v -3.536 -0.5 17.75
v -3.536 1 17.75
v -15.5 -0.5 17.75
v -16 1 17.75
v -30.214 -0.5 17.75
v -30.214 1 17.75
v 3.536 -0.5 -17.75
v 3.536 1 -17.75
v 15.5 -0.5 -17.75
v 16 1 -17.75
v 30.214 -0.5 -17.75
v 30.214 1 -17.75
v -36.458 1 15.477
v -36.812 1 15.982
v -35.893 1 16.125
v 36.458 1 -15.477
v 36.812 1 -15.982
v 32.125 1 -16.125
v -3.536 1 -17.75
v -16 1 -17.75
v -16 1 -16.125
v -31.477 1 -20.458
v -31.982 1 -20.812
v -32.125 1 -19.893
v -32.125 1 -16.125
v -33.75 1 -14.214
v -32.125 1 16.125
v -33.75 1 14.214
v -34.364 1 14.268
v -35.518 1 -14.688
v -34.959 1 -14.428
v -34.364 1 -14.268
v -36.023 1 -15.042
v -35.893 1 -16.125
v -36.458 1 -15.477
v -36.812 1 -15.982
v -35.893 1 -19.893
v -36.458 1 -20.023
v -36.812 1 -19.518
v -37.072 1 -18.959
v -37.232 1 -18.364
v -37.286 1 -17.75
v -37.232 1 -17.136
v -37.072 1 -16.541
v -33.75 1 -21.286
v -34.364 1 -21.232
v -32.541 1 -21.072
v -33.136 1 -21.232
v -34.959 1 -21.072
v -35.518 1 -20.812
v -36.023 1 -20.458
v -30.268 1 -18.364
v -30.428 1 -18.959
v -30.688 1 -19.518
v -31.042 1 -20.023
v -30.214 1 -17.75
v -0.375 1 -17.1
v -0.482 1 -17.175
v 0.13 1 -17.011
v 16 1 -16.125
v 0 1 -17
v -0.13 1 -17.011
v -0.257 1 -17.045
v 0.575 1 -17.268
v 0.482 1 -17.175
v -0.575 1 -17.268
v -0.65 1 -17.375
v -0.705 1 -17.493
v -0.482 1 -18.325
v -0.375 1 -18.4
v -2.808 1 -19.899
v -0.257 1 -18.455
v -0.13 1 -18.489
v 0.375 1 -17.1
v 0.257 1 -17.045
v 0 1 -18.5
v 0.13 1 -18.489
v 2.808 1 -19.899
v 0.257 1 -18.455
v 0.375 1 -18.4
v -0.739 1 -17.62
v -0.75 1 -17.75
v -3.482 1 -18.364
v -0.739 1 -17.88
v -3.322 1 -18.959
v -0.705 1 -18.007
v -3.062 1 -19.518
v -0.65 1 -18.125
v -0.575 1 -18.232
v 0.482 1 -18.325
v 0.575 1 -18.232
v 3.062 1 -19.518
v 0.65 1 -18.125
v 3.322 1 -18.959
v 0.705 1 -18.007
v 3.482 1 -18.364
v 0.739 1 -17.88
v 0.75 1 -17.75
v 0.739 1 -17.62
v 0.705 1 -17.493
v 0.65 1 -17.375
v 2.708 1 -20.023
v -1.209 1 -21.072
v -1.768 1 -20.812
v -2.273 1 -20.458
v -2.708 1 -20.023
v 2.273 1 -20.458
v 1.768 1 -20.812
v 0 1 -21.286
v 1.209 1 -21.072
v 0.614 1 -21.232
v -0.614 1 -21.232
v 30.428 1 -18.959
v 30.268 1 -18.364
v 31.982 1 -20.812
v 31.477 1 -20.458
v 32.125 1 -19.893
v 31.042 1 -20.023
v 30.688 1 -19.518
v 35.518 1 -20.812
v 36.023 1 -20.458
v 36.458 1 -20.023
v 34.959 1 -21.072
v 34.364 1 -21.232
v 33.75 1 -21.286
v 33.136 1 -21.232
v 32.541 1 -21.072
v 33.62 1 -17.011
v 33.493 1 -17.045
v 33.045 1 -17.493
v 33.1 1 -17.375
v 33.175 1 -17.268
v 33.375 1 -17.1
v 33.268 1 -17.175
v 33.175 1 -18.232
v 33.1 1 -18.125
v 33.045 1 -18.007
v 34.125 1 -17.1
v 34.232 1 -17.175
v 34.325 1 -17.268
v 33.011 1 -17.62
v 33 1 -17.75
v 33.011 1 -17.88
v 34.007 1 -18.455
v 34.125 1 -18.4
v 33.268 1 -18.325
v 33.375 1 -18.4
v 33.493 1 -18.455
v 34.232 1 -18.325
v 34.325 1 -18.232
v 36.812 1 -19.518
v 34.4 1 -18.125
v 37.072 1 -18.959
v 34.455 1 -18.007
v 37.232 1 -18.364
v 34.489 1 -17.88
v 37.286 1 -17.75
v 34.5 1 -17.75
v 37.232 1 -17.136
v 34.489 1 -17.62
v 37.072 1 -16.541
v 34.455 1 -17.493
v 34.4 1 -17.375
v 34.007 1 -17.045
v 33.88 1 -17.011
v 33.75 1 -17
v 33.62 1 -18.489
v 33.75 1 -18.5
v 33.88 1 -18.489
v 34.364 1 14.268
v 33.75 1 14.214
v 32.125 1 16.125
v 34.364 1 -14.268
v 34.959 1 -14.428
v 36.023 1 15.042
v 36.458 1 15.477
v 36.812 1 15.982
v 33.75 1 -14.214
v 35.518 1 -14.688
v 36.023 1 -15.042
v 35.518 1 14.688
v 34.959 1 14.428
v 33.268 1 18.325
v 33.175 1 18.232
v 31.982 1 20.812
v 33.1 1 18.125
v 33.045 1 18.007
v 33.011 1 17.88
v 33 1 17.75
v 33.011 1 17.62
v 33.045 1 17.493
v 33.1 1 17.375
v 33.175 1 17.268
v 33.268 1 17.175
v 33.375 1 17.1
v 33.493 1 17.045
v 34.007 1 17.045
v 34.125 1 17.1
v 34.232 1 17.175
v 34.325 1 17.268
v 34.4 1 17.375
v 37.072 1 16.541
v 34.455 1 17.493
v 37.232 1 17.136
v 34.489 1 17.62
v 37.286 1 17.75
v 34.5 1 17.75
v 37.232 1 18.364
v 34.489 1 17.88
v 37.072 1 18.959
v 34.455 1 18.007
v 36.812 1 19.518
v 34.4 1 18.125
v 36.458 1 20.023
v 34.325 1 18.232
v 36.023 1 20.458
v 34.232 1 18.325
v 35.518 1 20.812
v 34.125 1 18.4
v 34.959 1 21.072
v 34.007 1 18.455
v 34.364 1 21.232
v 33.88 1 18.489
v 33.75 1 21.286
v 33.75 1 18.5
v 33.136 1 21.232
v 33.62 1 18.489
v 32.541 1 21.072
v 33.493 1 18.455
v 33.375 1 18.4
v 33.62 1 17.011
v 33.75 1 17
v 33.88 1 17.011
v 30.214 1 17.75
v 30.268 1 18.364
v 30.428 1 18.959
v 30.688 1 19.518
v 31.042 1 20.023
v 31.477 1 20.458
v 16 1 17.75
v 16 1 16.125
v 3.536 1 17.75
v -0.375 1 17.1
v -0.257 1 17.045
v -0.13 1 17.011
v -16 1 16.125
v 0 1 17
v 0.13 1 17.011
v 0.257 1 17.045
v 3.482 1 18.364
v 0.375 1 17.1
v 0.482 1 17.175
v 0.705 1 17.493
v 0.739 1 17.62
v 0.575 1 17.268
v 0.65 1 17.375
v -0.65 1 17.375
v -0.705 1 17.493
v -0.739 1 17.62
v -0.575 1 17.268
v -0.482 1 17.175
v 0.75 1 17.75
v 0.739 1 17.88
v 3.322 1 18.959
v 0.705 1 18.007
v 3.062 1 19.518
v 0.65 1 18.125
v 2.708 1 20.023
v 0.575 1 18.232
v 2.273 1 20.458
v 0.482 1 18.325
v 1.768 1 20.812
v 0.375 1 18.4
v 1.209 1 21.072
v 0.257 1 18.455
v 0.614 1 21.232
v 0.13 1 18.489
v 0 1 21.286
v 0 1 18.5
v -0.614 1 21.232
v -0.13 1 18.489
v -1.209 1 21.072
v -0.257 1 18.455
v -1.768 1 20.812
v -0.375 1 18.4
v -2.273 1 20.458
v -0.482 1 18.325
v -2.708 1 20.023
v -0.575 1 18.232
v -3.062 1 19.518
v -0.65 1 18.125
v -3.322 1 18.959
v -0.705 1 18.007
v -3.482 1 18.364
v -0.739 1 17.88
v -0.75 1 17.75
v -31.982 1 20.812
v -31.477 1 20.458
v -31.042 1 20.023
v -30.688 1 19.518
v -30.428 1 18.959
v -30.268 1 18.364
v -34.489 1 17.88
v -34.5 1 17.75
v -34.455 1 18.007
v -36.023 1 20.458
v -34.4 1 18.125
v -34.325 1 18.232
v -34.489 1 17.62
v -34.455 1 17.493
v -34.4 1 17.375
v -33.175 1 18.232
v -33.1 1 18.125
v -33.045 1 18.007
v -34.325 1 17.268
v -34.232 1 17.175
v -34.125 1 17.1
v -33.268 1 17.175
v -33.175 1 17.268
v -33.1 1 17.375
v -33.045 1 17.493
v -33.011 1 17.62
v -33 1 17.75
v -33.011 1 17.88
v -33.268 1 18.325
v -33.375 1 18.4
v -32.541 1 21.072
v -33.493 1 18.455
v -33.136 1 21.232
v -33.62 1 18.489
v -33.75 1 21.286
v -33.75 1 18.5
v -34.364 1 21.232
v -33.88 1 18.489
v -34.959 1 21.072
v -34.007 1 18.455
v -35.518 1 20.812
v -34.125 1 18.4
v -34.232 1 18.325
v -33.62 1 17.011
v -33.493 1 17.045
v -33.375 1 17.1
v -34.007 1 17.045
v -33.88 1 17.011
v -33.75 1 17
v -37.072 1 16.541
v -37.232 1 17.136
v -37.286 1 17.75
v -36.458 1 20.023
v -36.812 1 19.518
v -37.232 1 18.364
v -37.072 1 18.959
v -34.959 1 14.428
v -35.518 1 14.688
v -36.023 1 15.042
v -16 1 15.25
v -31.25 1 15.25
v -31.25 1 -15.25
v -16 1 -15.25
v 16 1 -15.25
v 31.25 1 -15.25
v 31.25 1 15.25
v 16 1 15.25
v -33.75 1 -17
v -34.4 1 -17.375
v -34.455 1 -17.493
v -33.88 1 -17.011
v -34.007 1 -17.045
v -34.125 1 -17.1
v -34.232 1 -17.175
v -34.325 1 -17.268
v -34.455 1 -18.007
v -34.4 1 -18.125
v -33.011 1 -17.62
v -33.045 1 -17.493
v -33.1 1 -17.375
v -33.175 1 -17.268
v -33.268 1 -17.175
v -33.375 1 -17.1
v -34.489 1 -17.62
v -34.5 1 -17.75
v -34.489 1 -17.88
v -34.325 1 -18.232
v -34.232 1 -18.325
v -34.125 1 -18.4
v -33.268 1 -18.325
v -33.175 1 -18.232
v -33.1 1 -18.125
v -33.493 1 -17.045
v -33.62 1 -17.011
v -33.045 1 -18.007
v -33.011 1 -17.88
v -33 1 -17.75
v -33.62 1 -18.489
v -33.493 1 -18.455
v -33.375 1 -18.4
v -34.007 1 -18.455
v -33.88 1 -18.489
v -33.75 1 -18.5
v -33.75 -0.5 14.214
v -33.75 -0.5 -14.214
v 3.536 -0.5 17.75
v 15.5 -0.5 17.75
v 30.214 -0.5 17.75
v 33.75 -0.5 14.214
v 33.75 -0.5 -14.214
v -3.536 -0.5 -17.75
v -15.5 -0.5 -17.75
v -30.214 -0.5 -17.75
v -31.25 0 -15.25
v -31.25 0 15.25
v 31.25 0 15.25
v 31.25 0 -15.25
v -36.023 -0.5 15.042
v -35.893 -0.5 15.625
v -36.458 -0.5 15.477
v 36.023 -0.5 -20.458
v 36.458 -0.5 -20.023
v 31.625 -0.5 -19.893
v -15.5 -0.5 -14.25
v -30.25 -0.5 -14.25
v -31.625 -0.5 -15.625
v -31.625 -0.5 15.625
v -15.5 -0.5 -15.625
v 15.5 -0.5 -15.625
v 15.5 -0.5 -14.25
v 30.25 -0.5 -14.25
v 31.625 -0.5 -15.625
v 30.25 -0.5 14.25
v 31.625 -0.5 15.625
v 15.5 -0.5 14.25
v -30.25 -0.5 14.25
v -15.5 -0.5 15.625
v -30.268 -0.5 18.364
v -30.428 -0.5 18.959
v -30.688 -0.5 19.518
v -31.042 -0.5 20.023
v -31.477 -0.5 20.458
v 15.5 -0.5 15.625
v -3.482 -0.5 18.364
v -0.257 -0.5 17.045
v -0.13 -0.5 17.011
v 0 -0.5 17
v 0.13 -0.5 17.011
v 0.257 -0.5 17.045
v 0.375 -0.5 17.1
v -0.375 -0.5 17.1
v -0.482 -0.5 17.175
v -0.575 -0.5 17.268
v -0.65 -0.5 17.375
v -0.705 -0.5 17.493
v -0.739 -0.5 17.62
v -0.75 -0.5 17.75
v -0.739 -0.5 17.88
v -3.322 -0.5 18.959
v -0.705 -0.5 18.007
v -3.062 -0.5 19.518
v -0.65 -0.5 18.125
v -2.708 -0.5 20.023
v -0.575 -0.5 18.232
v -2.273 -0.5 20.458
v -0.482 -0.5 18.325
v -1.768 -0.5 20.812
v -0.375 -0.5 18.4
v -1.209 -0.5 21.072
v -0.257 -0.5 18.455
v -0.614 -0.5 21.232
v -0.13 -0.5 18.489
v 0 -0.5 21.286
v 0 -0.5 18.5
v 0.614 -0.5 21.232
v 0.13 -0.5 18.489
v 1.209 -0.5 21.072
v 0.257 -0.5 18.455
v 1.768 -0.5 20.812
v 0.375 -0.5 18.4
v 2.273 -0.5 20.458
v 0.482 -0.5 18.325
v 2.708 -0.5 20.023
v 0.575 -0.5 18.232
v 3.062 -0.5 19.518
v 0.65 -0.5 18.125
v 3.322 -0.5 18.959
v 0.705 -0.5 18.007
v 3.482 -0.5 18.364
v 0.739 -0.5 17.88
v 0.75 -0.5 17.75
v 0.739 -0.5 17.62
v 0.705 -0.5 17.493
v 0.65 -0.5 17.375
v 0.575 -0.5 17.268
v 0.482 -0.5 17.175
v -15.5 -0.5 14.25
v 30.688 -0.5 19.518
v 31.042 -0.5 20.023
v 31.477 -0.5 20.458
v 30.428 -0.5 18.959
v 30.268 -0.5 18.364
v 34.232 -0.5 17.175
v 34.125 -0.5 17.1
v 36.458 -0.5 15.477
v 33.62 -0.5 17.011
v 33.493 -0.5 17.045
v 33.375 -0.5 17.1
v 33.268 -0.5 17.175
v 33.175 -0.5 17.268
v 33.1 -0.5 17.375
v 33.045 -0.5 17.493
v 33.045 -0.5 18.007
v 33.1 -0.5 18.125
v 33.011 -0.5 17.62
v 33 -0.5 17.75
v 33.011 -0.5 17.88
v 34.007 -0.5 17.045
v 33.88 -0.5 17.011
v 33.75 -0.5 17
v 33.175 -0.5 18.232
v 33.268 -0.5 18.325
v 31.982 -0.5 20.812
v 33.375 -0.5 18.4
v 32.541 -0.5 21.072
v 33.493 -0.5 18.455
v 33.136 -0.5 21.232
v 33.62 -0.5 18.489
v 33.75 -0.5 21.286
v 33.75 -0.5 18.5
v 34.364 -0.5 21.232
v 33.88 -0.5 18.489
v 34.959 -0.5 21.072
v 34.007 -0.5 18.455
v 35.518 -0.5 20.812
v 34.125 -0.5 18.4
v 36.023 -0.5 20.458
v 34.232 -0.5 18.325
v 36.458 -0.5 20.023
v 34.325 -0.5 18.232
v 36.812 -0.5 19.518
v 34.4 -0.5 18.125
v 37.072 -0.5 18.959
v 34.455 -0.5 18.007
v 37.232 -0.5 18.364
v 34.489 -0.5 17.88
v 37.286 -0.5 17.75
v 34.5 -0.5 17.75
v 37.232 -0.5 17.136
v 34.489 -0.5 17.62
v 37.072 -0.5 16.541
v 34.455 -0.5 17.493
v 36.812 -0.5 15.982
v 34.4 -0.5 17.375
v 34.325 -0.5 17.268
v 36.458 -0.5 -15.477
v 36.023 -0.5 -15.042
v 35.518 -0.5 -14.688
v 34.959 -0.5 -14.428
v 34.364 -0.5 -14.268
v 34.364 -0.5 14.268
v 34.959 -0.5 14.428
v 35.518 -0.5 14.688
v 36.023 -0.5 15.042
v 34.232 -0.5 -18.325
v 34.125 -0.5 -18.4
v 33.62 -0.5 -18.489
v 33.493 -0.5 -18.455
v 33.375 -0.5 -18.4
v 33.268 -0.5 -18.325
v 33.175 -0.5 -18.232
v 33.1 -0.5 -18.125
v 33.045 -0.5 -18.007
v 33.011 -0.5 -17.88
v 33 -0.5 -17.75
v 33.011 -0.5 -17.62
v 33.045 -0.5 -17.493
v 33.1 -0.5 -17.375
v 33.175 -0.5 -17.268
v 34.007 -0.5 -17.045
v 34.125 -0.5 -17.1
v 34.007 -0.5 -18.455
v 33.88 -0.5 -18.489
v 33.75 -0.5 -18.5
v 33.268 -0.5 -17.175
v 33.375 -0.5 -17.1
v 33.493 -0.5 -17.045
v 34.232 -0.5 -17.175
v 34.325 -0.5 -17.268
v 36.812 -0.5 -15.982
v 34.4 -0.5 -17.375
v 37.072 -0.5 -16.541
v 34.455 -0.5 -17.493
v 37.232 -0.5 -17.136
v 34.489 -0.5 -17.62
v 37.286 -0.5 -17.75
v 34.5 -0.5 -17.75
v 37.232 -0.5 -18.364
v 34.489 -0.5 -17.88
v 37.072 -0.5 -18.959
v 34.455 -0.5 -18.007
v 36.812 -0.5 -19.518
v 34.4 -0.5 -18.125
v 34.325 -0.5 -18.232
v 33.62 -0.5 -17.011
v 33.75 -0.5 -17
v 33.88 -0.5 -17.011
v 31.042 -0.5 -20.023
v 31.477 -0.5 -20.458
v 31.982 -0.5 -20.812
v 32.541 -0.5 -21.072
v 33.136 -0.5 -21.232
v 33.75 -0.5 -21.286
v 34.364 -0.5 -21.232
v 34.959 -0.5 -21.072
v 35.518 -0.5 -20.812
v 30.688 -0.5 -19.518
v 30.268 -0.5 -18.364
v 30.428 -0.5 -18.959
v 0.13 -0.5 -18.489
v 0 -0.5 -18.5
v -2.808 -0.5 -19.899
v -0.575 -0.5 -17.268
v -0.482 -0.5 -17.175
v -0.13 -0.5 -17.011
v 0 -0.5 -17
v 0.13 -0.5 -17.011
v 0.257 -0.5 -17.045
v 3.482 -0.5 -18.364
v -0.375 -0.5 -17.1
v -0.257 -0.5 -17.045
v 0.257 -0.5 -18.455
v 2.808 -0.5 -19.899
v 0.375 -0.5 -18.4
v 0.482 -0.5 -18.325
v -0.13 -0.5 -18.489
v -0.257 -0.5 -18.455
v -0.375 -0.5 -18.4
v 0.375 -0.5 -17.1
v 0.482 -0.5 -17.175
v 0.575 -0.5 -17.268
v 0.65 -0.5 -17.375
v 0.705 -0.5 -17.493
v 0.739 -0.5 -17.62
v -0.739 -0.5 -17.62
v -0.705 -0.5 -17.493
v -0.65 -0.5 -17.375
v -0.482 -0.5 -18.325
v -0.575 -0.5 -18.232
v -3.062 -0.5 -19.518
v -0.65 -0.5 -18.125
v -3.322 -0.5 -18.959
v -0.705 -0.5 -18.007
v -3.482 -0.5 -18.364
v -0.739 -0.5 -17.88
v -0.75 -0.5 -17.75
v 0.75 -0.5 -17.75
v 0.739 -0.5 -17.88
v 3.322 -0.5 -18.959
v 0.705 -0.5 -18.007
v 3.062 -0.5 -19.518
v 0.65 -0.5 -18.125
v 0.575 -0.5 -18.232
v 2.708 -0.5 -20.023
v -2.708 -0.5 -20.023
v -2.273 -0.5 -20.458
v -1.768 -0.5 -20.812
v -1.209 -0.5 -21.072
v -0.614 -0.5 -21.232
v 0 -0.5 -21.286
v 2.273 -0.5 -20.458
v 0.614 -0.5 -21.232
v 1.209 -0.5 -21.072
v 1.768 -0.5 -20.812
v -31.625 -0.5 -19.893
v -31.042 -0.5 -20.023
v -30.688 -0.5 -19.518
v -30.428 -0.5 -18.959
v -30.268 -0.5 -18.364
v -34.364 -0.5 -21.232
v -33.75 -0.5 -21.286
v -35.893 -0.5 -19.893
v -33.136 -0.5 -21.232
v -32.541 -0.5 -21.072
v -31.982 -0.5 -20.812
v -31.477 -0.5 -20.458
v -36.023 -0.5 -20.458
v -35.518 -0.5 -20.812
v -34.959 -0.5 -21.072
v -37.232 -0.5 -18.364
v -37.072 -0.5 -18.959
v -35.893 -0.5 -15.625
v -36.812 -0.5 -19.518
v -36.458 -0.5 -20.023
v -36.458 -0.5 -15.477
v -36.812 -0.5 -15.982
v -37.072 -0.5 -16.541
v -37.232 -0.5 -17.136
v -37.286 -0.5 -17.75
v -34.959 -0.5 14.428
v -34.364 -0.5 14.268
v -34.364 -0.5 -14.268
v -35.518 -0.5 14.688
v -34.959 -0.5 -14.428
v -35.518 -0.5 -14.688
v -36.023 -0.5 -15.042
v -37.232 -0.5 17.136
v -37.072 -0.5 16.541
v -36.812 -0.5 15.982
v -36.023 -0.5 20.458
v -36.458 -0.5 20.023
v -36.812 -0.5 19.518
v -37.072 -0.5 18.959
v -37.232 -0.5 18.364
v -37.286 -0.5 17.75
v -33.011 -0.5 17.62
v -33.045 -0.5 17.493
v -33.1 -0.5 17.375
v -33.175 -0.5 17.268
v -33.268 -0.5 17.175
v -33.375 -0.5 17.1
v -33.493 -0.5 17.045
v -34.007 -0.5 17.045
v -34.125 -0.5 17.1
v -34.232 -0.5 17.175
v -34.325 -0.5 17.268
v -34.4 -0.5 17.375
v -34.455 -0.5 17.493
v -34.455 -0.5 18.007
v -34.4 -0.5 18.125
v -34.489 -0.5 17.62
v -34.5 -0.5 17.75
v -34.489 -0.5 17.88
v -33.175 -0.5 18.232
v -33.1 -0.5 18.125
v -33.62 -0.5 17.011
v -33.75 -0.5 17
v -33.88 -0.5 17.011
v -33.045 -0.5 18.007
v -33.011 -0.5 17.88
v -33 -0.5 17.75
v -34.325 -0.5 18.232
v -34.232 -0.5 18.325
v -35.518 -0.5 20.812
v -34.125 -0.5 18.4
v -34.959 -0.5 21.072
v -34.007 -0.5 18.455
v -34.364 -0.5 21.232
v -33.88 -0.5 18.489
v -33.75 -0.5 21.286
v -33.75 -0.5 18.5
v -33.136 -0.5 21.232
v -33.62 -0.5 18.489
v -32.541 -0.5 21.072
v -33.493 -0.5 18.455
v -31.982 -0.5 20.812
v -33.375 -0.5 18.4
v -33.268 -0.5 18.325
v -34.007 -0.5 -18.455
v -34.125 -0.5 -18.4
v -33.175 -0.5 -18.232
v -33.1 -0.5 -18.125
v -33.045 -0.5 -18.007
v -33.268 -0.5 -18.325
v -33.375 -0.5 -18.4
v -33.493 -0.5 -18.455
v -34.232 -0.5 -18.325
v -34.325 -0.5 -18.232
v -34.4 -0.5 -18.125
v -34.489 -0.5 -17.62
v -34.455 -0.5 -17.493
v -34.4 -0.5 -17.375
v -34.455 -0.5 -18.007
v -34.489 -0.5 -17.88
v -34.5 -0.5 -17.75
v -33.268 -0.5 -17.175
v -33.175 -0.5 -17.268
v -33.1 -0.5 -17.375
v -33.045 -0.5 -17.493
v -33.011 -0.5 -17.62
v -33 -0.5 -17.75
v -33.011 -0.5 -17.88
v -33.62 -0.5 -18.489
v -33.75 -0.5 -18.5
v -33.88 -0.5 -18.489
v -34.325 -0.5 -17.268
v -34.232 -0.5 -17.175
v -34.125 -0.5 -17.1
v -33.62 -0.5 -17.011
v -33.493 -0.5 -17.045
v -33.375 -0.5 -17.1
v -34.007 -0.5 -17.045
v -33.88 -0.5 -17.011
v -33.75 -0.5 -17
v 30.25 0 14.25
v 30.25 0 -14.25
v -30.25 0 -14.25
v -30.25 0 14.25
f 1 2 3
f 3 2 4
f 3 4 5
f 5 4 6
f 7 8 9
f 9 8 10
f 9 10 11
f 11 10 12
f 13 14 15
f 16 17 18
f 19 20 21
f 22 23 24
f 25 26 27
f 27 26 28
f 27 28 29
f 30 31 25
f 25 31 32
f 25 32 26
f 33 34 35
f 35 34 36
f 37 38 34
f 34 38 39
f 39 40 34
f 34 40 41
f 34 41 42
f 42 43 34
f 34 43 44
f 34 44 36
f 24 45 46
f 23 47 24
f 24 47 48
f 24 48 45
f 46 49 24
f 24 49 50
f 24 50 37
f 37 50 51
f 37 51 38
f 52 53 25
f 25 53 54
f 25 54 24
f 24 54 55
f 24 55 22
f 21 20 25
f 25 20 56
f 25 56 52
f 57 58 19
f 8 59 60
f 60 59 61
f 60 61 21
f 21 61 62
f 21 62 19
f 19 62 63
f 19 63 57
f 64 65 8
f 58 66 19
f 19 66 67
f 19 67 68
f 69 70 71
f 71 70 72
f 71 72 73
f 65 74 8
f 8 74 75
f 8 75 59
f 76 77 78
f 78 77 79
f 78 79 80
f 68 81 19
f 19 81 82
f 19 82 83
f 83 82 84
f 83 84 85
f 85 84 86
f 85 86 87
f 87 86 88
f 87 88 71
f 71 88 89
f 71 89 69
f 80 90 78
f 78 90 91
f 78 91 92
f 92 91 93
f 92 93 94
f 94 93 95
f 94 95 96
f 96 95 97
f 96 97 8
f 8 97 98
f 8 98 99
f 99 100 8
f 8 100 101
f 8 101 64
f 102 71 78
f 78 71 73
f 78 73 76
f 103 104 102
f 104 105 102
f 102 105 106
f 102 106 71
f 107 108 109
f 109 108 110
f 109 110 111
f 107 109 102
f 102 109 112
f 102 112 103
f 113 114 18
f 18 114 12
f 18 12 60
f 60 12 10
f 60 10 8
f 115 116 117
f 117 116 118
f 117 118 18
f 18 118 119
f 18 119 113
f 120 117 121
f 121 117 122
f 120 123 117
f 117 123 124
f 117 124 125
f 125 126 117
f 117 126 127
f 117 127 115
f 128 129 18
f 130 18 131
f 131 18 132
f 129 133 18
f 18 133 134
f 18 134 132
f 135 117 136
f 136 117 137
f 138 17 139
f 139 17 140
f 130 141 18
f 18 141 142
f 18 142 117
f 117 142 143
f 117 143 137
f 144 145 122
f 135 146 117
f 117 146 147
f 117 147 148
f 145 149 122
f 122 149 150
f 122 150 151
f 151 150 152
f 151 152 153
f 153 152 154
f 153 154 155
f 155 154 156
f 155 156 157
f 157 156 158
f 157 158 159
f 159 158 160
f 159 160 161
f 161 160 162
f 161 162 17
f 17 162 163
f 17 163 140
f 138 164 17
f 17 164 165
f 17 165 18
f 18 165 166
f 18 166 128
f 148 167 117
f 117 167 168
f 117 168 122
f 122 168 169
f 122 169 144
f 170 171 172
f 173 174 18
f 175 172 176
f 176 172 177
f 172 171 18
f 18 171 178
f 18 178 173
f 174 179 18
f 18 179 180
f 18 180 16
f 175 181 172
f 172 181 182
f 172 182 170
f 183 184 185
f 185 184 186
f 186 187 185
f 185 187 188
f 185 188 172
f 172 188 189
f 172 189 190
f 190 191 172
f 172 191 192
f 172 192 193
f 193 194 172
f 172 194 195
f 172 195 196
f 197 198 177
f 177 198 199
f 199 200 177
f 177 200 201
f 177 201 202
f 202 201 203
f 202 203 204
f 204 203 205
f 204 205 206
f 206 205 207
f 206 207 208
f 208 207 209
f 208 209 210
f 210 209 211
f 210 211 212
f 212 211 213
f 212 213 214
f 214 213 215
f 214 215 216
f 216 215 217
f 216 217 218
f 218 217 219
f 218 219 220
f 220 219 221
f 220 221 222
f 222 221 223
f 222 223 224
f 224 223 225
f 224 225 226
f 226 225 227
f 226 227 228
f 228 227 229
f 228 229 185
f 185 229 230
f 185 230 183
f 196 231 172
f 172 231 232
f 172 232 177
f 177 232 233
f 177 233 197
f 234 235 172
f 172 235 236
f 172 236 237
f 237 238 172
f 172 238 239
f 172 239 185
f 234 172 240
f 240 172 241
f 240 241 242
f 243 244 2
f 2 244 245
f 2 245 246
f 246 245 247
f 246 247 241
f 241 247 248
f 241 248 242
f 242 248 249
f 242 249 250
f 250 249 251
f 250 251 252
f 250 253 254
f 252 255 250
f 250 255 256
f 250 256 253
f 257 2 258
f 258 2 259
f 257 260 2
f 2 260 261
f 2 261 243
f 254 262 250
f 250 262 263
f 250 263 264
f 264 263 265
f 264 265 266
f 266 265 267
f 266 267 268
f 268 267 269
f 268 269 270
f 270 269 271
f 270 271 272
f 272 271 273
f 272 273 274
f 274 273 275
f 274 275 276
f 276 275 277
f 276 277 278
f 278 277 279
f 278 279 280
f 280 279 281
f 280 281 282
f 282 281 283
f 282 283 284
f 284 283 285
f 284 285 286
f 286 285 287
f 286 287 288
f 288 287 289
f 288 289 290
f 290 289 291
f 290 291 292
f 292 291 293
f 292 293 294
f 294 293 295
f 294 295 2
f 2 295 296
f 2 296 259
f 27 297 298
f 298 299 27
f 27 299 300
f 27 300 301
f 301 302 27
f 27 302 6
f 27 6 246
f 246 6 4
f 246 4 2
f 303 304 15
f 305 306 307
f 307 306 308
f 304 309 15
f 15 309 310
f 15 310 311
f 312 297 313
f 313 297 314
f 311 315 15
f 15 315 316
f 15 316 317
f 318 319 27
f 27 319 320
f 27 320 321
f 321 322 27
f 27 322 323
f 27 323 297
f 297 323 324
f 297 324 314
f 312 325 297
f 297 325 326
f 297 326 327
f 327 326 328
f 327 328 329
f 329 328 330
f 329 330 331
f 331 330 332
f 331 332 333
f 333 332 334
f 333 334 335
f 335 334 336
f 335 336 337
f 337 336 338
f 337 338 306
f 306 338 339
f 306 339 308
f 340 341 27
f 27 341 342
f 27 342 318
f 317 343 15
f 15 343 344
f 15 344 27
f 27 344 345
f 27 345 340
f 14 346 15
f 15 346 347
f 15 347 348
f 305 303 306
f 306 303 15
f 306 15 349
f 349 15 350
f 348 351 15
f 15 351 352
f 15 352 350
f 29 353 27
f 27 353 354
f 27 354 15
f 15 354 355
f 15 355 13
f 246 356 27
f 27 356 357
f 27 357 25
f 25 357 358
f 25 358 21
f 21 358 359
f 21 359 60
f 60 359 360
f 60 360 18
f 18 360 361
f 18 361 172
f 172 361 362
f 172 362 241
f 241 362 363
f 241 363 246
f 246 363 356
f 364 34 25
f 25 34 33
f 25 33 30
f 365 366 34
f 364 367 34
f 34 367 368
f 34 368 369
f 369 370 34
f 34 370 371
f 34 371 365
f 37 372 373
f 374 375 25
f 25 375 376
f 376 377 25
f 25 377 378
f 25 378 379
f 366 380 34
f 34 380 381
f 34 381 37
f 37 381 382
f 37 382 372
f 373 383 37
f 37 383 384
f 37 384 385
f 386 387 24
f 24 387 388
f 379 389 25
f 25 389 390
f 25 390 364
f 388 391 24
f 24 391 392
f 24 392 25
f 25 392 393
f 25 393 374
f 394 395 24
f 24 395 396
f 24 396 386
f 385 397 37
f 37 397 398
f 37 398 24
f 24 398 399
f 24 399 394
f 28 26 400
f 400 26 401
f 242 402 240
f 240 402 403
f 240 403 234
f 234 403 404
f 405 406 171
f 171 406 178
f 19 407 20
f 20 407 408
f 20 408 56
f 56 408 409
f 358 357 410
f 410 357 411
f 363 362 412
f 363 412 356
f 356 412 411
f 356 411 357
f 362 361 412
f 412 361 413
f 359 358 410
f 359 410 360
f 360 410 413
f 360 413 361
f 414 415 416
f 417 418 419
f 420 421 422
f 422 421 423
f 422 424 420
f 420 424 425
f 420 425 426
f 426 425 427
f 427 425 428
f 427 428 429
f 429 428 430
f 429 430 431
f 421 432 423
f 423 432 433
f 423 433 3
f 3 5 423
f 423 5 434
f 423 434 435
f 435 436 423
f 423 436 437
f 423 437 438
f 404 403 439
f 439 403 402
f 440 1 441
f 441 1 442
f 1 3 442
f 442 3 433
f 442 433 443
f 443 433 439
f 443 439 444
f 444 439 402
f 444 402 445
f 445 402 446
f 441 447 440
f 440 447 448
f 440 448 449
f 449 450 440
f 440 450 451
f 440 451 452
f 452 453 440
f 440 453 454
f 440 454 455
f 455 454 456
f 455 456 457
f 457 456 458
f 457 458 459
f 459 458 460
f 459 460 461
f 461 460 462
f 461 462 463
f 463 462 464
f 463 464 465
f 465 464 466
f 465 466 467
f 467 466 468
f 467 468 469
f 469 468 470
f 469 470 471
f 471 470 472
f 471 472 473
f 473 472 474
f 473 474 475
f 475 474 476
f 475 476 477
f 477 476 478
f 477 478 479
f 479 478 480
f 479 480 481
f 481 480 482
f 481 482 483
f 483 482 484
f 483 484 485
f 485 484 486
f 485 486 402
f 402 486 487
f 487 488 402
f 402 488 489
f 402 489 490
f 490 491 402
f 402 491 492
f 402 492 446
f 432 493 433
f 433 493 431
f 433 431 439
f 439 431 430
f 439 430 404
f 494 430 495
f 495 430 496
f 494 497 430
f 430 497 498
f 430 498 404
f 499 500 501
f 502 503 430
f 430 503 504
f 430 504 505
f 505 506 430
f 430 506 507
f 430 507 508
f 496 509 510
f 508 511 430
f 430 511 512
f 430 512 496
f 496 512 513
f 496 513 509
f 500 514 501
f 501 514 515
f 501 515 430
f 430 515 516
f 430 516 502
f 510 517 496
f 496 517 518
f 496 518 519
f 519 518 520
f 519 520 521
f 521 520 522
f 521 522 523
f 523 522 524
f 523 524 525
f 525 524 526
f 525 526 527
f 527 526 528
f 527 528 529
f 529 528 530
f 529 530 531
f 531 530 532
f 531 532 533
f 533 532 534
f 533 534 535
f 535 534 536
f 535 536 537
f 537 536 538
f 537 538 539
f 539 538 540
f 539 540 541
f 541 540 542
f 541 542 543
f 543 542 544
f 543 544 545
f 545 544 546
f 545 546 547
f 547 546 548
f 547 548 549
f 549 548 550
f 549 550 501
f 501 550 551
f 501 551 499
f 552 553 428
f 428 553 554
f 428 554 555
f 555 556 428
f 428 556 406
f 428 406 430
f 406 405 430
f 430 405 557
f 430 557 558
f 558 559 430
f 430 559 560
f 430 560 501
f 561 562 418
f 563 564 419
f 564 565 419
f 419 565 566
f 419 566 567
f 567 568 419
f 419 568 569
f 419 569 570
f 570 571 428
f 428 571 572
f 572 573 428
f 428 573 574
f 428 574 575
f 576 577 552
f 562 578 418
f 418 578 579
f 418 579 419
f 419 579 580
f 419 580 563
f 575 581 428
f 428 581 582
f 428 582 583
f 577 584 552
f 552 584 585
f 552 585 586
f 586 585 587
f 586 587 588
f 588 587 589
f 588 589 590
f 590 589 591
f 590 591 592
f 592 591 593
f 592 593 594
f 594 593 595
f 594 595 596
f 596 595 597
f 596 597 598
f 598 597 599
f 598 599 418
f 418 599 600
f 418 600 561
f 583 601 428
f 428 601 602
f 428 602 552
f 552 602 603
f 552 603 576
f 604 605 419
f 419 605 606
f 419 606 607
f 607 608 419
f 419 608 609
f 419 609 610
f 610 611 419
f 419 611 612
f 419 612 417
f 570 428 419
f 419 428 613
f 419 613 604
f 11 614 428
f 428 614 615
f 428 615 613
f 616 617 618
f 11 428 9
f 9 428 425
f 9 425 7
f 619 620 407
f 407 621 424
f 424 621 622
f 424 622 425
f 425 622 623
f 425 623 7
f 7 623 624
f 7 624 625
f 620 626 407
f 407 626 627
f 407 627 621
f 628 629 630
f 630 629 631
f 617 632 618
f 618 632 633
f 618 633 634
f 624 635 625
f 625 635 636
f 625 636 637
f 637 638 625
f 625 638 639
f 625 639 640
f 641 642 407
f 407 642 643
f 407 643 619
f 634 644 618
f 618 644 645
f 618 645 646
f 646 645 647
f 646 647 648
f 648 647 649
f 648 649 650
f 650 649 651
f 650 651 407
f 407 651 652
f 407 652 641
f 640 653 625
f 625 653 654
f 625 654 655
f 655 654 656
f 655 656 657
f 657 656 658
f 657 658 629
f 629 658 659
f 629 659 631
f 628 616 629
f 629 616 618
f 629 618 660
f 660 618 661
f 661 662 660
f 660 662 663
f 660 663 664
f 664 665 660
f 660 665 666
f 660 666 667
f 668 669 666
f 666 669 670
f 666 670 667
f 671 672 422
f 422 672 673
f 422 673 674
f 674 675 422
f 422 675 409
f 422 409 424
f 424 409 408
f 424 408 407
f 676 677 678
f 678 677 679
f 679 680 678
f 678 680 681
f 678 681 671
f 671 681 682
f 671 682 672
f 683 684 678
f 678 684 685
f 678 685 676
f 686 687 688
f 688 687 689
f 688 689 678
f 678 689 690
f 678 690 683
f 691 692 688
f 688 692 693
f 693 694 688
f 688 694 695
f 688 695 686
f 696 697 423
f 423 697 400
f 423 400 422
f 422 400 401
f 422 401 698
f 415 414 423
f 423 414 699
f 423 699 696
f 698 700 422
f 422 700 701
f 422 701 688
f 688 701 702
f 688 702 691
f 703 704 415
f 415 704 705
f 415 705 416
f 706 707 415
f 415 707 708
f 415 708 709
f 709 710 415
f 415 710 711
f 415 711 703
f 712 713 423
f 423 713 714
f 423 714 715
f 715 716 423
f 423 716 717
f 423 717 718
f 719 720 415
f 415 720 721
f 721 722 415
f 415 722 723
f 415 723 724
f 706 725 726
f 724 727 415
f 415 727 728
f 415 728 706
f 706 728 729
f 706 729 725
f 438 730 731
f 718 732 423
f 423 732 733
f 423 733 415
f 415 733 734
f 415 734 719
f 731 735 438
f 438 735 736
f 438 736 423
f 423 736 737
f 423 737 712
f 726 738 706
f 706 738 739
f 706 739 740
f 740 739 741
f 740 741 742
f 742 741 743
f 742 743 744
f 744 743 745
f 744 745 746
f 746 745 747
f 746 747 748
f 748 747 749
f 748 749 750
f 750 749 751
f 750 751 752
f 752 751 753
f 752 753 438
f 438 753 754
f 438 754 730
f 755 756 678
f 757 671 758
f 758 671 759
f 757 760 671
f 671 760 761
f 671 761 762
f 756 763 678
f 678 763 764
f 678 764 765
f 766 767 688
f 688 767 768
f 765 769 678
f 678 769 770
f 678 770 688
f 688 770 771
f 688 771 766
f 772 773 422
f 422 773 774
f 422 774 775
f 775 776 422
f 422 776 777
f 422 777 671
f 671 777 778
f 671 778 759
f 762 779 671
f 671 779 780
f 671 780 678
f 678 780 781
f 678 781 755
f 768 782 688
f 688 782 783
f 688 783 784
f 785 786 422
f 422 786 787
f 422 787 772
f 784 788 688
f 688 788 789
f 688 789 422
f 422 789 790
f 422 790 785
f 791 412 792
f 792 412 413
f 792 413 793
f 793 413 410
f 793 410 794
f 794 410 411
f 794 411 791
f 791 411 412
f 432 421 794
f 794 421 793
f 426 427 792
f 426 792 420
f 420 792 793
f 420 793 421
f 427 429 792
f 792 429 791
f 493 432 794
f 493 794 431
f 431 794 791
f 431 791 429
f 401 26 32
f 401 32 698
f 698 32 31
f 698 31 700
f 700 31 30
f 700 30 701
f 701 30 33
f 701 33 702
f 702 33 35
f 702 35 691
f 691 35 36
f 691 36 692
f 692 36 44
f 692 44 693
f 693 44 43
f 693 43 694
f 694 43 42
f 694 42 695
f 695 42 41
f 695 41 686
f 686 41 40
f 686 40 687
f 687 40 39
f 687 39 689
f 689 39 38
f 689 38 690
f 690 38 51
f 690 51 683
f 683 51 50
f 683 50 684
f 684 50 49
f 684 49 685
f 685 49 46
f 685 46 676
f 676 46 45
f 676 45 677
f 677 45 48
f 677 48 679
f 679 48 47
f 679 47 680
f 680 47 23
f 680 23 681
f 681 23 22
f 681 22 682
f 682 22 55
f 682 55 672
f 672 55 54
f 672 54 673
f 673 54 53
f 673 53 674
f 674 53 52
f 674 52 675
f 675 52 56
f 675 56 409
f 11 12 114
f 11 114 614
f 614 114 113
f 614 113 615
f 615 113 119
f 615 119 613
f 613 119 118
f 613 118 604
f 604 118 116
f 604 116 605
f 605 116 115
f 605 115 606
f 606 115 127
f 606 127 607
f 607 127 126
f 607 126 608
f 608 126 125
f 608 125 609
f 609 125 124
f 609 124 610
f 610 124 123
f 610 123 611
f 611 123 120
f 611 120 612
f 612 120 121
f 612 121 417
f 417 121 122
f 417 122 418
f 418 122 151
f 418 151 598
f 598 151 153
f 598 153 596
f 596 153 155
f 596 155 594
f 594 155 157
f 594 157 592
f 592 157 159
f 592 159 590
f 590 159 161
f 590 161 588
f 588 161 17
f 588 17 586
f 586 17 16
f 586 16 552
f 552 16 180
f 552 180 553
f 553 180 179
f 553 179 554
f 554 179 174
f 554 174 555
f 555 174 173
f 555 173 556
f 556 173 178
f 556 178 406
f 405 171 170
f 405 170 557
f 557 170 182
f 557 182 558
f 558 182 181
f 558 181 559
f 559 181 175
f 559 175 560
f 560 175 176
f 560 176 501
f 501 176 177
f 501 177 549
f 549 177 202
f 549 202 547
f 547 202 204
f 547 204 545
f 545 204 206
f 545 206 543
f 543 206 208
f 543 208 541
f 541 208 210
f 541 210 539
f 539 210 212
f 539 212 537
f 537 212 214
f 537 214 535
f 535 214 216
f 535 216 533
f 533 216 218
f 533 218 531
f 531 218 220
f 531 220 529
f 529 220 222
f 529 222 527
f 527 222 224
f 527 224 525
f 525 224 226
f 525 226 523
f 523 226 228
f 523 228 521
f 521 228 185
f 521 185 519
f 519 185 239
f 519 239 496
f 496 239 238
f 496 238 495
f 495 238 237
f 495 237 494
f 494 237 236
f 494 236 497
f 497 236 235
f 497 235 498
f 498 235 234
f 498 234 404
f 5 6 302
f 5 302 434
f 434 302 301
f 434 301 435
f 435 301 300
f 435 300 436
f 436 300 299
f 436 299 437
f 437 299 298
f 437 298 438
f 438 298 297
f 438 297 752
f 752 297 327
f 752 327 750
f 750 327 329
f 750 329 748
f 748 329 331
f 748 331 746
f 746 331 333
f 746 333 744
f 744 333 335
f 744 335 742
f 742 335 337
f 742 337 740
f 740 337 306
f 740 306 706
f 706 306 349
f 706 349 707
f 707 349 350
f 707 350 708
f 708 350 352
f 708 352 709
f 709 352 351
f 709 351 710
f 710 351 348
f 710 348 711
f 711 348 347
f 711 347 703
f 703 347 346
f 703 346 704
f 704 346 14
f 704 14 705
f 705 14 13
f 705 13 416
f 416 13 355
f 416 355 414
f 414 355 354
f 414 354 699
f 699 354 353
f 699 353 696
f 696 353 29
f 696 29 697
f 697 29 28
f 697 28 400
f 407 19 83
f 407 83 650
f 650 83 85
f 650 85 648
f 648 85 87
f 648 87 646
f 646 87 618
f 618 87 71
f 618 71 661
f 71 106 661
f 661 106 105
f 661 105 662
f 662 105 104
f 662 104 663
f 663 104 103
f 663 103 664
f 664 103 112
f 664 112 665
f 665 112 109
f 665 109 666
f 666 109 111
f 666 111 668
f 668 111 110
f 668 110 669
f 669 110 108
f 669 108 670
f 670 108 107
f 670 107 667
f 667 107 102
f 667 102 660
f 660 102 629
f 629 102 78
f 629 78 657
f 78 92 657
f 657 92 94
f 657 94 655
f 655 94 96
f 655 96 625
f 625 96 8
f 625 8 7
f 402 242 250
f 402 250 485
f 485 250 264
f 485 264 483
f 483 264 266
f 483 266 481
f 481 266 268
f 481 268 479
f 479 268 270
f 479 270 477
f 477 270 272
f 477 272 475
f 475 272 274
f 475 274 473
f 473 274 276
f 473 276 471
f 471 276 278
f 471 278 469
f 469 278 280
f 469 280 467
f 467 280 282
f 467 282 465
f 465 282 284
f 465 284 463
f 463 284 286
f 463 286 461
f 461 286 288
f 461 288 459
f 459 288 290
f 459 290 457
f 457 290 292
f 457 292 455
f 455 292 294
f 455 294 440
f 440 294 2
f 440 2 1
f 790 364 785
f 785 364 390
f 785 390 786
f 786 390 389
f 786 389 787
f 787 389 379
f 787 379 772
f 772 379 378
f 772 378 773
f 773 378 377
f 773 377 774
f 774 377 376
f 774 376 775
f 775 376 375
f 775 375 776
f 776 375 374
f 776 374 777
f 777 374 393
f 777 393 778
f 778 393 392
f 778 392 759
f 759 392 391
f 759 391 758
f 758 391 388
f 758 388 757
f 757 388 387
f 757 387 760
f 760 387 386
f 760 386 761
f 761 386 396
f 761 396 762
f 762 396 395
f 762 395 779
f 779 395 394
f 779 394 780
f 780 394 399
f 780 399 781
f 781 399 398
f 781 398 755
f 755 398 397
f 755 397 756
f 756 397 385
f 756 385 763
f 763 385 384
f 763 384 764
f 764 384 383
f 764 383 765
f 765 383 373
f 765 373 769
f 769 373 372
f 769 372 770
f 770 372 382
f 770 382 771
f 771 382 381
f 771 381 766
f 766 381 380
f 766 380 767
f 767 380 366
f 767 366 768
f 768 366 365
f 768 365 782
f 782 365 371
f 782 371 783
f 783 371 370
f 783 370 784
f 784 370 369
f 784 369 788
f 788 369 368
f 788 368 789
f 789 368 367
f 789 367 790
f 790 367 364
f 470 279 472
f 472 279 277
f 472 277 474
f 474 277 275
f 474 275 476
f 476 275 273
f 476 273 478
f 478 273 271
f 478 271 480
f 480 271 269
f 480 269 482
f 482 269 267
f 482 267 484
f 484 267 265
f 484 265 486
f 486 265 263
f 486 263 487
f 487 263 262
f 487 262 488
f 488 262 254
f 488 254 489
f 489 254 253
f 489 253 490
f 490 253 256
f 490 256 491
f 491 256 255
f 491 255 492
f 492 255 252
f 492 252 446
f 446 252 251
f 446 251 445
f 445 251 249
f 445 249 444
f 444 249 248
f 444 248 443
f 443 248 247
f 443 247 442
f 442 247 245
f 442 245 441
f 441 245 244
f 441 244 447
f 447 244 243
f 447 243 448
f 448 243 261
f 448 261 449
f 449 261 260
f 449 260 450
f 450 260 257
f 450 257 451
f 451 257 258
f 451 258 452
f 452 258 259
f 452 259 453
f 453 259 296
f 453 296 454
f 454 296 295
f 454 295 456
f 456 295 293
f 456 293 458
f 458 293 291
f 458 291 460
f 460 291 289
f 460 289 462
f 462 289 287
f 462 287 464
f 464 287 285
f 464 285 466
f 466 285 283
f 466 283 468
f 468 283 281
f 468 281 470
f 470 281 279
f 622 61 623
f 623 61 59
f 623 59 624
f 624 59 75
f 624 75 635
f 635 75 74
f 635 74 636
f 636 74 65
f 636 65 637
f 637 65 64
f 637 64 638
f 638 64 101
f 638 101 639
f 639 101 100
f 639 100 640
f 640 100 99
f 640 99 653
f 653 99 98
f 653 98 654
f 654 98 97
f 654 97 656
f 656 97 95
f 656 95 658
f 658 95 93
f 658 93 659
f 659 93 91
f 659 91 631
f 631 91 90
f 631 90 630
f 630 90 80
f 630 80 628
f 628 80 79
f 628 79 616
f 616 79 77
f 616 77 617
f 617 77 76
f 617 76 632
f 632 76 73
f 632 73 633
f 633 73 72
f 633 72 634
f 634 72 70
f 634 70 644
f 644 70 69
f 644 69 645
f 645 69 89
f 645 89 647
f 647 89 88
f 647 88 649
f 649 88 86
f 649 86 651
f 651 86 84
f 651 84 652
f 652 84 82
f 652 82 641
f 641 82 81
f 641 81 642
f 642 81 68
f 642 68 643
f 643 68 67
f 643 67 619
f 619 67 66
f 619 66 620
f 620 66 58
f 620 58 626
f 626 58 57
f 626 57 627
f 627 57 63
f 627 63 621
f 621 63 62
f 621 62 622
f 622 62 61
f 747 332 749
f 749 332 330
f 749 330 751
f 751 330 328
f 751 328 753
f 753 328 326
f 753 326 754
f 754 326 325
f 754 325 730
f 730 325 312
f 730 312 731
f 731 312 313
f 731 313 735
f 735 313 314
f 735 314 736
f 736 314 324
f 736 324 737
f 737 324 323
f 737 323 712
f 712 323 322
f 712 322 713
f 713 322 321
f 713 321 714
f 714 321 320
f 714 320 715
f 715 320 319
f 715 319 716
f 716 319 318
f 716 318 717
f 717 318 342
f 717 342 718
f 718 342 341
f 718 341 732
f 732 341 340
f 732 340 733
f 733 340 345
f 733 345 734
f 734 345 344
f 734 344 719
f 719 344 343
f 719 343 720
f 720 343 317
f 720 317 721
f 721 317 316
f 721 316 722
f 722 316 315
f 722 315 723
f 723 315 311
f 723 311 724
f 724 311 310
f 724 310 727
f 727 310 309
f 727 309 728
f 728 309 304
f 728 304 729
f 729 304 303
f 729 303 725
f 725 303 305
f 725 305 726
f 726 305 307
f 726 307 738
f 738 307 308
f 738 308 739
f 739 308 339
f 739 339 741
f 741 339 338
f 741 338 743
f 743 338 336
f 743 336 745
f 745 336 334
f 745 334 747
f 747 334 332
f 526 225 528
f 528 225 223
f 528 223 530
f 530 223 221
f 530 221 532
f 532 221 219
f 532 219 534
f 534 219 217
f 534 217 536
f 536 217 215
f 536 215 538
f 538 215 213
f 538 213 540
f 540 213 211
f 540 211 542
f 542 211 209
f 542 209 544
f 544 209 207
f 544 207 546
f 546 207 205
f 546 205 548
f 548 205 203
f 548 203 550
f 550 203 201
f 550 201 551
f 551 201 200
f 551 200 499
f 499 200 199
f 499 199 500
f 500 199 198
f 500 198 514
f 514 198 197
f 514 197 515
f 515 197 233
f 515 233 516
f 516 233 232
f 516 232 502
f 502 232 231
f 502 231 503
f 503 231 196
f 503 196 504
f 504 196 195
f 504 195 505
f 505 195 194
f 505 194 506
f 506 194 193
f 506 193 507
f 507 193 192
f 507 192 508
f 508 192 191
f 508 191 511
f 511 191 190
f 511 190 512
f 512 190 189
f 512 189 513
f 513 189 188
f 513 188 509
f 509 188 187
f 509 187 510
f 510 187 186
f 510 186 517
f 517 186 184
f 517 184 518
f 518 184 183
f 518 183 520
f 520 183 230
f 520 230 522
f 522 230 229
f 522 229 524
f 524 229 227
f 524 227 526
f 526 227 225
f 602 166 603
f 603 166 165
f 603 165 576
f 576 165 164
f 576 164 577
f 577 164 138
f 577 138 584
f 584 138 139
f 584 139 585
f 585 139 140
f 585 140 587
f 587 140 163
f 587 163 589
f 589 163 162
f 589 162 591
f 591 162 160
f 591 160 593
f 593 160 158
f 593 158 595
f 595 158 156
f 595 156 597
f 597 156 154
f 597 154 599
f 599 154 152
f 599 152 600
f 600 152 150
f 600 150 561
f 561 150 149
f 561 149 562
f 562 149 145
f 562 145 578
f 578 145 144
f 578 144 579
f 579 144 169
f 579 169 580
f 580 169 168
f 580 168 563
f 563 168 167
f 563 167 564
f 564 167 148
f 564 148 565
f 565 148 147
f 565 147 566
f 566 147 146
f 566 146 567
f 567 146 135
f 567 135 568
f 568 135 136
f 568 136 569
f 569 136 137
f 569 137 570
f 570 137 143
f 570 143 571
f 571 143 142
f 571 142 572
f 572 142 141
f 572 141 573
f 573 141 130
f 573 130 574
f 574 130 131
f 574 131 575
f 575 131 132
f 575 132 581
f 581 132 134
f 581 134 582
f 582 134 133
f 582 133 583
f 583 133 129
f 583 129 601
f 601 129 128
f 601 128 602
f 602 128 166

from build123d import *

# Parameters (mm, degrees)
SKETCH1_W               = 67.5
SKETCH1_H               = 35.5
SKETCH1_W_2             = 62.5
SKETCH1_H_2             = 30.5
BOSS_EXTRUDE1_DEPTH     = 1
SKETCH2_W               = 67.5
SKETCH2_H               = 35.5
SKETCH2_W_2             = 60.5
SKETCH2_H_2             = 28.5
BOSS_EXTRUDE2_DEPTH     = 0.5
SKETCH3_R               = 3.535533906
BOSS_EXTRUDE3_DEPTH     = 1.5
SKETCH4_R               = 0.75
CUT_EXTRUDE1_DEPTH      = 1
CUT_EXTRUDE1_DEPTH_BACK = 2.5


with BuildPart() as part:
    # Sketch1 → Boss-Extrude1 (new body)
    with BuildSketch(Plane(origin=(0, 0, 0), x_dir=(1, 0, 0), z_dir=(0, 1, 0))):
        Rectangle(SKETCH1_W, SKETCH1_H)
        Rectangle(SKETCH1_W_2, SKETCH1_H_2, mode=Mode.SUBTRACT)
    extrude(amount=BOSS_EXTRUDE1_DEPTH)

    # Sketch2 → Boss-Extrude2 (add)
    with BuildSketch(Plane.XZ):
        Rectangle(SKETCH2_W, SKETCH2_H)
        Rectangle(SKETCH2_W_2, SKETCH2_H_2, mode=Mode.SUBTRACT)
    extrude(amount=BOSS_EXTRUDE2_DEPTH)

    # Sketch3 → Boss-Extrude3 (add)
    with BuildSketch(Plane(origin=(0, 1, 0), x_dir=(1, 0, 0), z_dir=(0, 1, 0))):
        with Locations((-33.75, 17.75)):
            Circle(SKETCH3_R)
        with Locations((33.75, 17.75)):
            Circle(SKETCH3_R)
        with Locations((33.75, -17.75)):
            Circle(SKETCH3_R)
        with Locations((-33.75, -17.75)):
            Circle(SKETCH3_R)
        with BuildLine():
            Line((-3.535533906, 17.75), (3.535533906, 17.75))
            ThreePointArc((3.535533906, 17.75), (0, 21.285533906), (-3.535533906, 17.75))
        make_face()
        with BuildLine():
            Line((-3.535533906, -17.75), (3.535533906, -17.75))
            ThreePointArc((3.535533906, -17.75), (0, -21.285533906), (-3.535533906, -17.75))
        make_face()
    extrude(amount=-BOSS_EXTRUDE3_DEPTH)

    # Sketch4 → Cut-Extrude1 (cut, two sides)
    with BuildSketch(Plane(origin=(0, 1, 0), x_dir=(1, 0, 0), z_dir=(0, 1, 0))) as cut_extrude1_sk:
        with Locations((-33.75, 17.75)):
            Circle(SKETCH4_R)
        with Locations((33.75, 17.75)):
            Circle(SKETCH4_R)
        with Locations((33.75, -17.75)):
            Circle(SKETCH4_R)
        with Locations((-33.75, -17.75)):
            Circle(SKETCH4_R)
        with Locations((0, 17.75)):
            Circle(SKETCH4_R)
        with Locations((0, -17.75)):
            Circle(SKETCH4_R)
    extrude(amount=CUT_EXTRUDE1_DEPTH, mode=Mode.SUBTRACT)
    extrude(cut_extrude1_sk.sketch, amount=-CUT_EXTRUDE1_DEPTH_BACK, mode=Mode.SUBTRACT)


solid = part.part
